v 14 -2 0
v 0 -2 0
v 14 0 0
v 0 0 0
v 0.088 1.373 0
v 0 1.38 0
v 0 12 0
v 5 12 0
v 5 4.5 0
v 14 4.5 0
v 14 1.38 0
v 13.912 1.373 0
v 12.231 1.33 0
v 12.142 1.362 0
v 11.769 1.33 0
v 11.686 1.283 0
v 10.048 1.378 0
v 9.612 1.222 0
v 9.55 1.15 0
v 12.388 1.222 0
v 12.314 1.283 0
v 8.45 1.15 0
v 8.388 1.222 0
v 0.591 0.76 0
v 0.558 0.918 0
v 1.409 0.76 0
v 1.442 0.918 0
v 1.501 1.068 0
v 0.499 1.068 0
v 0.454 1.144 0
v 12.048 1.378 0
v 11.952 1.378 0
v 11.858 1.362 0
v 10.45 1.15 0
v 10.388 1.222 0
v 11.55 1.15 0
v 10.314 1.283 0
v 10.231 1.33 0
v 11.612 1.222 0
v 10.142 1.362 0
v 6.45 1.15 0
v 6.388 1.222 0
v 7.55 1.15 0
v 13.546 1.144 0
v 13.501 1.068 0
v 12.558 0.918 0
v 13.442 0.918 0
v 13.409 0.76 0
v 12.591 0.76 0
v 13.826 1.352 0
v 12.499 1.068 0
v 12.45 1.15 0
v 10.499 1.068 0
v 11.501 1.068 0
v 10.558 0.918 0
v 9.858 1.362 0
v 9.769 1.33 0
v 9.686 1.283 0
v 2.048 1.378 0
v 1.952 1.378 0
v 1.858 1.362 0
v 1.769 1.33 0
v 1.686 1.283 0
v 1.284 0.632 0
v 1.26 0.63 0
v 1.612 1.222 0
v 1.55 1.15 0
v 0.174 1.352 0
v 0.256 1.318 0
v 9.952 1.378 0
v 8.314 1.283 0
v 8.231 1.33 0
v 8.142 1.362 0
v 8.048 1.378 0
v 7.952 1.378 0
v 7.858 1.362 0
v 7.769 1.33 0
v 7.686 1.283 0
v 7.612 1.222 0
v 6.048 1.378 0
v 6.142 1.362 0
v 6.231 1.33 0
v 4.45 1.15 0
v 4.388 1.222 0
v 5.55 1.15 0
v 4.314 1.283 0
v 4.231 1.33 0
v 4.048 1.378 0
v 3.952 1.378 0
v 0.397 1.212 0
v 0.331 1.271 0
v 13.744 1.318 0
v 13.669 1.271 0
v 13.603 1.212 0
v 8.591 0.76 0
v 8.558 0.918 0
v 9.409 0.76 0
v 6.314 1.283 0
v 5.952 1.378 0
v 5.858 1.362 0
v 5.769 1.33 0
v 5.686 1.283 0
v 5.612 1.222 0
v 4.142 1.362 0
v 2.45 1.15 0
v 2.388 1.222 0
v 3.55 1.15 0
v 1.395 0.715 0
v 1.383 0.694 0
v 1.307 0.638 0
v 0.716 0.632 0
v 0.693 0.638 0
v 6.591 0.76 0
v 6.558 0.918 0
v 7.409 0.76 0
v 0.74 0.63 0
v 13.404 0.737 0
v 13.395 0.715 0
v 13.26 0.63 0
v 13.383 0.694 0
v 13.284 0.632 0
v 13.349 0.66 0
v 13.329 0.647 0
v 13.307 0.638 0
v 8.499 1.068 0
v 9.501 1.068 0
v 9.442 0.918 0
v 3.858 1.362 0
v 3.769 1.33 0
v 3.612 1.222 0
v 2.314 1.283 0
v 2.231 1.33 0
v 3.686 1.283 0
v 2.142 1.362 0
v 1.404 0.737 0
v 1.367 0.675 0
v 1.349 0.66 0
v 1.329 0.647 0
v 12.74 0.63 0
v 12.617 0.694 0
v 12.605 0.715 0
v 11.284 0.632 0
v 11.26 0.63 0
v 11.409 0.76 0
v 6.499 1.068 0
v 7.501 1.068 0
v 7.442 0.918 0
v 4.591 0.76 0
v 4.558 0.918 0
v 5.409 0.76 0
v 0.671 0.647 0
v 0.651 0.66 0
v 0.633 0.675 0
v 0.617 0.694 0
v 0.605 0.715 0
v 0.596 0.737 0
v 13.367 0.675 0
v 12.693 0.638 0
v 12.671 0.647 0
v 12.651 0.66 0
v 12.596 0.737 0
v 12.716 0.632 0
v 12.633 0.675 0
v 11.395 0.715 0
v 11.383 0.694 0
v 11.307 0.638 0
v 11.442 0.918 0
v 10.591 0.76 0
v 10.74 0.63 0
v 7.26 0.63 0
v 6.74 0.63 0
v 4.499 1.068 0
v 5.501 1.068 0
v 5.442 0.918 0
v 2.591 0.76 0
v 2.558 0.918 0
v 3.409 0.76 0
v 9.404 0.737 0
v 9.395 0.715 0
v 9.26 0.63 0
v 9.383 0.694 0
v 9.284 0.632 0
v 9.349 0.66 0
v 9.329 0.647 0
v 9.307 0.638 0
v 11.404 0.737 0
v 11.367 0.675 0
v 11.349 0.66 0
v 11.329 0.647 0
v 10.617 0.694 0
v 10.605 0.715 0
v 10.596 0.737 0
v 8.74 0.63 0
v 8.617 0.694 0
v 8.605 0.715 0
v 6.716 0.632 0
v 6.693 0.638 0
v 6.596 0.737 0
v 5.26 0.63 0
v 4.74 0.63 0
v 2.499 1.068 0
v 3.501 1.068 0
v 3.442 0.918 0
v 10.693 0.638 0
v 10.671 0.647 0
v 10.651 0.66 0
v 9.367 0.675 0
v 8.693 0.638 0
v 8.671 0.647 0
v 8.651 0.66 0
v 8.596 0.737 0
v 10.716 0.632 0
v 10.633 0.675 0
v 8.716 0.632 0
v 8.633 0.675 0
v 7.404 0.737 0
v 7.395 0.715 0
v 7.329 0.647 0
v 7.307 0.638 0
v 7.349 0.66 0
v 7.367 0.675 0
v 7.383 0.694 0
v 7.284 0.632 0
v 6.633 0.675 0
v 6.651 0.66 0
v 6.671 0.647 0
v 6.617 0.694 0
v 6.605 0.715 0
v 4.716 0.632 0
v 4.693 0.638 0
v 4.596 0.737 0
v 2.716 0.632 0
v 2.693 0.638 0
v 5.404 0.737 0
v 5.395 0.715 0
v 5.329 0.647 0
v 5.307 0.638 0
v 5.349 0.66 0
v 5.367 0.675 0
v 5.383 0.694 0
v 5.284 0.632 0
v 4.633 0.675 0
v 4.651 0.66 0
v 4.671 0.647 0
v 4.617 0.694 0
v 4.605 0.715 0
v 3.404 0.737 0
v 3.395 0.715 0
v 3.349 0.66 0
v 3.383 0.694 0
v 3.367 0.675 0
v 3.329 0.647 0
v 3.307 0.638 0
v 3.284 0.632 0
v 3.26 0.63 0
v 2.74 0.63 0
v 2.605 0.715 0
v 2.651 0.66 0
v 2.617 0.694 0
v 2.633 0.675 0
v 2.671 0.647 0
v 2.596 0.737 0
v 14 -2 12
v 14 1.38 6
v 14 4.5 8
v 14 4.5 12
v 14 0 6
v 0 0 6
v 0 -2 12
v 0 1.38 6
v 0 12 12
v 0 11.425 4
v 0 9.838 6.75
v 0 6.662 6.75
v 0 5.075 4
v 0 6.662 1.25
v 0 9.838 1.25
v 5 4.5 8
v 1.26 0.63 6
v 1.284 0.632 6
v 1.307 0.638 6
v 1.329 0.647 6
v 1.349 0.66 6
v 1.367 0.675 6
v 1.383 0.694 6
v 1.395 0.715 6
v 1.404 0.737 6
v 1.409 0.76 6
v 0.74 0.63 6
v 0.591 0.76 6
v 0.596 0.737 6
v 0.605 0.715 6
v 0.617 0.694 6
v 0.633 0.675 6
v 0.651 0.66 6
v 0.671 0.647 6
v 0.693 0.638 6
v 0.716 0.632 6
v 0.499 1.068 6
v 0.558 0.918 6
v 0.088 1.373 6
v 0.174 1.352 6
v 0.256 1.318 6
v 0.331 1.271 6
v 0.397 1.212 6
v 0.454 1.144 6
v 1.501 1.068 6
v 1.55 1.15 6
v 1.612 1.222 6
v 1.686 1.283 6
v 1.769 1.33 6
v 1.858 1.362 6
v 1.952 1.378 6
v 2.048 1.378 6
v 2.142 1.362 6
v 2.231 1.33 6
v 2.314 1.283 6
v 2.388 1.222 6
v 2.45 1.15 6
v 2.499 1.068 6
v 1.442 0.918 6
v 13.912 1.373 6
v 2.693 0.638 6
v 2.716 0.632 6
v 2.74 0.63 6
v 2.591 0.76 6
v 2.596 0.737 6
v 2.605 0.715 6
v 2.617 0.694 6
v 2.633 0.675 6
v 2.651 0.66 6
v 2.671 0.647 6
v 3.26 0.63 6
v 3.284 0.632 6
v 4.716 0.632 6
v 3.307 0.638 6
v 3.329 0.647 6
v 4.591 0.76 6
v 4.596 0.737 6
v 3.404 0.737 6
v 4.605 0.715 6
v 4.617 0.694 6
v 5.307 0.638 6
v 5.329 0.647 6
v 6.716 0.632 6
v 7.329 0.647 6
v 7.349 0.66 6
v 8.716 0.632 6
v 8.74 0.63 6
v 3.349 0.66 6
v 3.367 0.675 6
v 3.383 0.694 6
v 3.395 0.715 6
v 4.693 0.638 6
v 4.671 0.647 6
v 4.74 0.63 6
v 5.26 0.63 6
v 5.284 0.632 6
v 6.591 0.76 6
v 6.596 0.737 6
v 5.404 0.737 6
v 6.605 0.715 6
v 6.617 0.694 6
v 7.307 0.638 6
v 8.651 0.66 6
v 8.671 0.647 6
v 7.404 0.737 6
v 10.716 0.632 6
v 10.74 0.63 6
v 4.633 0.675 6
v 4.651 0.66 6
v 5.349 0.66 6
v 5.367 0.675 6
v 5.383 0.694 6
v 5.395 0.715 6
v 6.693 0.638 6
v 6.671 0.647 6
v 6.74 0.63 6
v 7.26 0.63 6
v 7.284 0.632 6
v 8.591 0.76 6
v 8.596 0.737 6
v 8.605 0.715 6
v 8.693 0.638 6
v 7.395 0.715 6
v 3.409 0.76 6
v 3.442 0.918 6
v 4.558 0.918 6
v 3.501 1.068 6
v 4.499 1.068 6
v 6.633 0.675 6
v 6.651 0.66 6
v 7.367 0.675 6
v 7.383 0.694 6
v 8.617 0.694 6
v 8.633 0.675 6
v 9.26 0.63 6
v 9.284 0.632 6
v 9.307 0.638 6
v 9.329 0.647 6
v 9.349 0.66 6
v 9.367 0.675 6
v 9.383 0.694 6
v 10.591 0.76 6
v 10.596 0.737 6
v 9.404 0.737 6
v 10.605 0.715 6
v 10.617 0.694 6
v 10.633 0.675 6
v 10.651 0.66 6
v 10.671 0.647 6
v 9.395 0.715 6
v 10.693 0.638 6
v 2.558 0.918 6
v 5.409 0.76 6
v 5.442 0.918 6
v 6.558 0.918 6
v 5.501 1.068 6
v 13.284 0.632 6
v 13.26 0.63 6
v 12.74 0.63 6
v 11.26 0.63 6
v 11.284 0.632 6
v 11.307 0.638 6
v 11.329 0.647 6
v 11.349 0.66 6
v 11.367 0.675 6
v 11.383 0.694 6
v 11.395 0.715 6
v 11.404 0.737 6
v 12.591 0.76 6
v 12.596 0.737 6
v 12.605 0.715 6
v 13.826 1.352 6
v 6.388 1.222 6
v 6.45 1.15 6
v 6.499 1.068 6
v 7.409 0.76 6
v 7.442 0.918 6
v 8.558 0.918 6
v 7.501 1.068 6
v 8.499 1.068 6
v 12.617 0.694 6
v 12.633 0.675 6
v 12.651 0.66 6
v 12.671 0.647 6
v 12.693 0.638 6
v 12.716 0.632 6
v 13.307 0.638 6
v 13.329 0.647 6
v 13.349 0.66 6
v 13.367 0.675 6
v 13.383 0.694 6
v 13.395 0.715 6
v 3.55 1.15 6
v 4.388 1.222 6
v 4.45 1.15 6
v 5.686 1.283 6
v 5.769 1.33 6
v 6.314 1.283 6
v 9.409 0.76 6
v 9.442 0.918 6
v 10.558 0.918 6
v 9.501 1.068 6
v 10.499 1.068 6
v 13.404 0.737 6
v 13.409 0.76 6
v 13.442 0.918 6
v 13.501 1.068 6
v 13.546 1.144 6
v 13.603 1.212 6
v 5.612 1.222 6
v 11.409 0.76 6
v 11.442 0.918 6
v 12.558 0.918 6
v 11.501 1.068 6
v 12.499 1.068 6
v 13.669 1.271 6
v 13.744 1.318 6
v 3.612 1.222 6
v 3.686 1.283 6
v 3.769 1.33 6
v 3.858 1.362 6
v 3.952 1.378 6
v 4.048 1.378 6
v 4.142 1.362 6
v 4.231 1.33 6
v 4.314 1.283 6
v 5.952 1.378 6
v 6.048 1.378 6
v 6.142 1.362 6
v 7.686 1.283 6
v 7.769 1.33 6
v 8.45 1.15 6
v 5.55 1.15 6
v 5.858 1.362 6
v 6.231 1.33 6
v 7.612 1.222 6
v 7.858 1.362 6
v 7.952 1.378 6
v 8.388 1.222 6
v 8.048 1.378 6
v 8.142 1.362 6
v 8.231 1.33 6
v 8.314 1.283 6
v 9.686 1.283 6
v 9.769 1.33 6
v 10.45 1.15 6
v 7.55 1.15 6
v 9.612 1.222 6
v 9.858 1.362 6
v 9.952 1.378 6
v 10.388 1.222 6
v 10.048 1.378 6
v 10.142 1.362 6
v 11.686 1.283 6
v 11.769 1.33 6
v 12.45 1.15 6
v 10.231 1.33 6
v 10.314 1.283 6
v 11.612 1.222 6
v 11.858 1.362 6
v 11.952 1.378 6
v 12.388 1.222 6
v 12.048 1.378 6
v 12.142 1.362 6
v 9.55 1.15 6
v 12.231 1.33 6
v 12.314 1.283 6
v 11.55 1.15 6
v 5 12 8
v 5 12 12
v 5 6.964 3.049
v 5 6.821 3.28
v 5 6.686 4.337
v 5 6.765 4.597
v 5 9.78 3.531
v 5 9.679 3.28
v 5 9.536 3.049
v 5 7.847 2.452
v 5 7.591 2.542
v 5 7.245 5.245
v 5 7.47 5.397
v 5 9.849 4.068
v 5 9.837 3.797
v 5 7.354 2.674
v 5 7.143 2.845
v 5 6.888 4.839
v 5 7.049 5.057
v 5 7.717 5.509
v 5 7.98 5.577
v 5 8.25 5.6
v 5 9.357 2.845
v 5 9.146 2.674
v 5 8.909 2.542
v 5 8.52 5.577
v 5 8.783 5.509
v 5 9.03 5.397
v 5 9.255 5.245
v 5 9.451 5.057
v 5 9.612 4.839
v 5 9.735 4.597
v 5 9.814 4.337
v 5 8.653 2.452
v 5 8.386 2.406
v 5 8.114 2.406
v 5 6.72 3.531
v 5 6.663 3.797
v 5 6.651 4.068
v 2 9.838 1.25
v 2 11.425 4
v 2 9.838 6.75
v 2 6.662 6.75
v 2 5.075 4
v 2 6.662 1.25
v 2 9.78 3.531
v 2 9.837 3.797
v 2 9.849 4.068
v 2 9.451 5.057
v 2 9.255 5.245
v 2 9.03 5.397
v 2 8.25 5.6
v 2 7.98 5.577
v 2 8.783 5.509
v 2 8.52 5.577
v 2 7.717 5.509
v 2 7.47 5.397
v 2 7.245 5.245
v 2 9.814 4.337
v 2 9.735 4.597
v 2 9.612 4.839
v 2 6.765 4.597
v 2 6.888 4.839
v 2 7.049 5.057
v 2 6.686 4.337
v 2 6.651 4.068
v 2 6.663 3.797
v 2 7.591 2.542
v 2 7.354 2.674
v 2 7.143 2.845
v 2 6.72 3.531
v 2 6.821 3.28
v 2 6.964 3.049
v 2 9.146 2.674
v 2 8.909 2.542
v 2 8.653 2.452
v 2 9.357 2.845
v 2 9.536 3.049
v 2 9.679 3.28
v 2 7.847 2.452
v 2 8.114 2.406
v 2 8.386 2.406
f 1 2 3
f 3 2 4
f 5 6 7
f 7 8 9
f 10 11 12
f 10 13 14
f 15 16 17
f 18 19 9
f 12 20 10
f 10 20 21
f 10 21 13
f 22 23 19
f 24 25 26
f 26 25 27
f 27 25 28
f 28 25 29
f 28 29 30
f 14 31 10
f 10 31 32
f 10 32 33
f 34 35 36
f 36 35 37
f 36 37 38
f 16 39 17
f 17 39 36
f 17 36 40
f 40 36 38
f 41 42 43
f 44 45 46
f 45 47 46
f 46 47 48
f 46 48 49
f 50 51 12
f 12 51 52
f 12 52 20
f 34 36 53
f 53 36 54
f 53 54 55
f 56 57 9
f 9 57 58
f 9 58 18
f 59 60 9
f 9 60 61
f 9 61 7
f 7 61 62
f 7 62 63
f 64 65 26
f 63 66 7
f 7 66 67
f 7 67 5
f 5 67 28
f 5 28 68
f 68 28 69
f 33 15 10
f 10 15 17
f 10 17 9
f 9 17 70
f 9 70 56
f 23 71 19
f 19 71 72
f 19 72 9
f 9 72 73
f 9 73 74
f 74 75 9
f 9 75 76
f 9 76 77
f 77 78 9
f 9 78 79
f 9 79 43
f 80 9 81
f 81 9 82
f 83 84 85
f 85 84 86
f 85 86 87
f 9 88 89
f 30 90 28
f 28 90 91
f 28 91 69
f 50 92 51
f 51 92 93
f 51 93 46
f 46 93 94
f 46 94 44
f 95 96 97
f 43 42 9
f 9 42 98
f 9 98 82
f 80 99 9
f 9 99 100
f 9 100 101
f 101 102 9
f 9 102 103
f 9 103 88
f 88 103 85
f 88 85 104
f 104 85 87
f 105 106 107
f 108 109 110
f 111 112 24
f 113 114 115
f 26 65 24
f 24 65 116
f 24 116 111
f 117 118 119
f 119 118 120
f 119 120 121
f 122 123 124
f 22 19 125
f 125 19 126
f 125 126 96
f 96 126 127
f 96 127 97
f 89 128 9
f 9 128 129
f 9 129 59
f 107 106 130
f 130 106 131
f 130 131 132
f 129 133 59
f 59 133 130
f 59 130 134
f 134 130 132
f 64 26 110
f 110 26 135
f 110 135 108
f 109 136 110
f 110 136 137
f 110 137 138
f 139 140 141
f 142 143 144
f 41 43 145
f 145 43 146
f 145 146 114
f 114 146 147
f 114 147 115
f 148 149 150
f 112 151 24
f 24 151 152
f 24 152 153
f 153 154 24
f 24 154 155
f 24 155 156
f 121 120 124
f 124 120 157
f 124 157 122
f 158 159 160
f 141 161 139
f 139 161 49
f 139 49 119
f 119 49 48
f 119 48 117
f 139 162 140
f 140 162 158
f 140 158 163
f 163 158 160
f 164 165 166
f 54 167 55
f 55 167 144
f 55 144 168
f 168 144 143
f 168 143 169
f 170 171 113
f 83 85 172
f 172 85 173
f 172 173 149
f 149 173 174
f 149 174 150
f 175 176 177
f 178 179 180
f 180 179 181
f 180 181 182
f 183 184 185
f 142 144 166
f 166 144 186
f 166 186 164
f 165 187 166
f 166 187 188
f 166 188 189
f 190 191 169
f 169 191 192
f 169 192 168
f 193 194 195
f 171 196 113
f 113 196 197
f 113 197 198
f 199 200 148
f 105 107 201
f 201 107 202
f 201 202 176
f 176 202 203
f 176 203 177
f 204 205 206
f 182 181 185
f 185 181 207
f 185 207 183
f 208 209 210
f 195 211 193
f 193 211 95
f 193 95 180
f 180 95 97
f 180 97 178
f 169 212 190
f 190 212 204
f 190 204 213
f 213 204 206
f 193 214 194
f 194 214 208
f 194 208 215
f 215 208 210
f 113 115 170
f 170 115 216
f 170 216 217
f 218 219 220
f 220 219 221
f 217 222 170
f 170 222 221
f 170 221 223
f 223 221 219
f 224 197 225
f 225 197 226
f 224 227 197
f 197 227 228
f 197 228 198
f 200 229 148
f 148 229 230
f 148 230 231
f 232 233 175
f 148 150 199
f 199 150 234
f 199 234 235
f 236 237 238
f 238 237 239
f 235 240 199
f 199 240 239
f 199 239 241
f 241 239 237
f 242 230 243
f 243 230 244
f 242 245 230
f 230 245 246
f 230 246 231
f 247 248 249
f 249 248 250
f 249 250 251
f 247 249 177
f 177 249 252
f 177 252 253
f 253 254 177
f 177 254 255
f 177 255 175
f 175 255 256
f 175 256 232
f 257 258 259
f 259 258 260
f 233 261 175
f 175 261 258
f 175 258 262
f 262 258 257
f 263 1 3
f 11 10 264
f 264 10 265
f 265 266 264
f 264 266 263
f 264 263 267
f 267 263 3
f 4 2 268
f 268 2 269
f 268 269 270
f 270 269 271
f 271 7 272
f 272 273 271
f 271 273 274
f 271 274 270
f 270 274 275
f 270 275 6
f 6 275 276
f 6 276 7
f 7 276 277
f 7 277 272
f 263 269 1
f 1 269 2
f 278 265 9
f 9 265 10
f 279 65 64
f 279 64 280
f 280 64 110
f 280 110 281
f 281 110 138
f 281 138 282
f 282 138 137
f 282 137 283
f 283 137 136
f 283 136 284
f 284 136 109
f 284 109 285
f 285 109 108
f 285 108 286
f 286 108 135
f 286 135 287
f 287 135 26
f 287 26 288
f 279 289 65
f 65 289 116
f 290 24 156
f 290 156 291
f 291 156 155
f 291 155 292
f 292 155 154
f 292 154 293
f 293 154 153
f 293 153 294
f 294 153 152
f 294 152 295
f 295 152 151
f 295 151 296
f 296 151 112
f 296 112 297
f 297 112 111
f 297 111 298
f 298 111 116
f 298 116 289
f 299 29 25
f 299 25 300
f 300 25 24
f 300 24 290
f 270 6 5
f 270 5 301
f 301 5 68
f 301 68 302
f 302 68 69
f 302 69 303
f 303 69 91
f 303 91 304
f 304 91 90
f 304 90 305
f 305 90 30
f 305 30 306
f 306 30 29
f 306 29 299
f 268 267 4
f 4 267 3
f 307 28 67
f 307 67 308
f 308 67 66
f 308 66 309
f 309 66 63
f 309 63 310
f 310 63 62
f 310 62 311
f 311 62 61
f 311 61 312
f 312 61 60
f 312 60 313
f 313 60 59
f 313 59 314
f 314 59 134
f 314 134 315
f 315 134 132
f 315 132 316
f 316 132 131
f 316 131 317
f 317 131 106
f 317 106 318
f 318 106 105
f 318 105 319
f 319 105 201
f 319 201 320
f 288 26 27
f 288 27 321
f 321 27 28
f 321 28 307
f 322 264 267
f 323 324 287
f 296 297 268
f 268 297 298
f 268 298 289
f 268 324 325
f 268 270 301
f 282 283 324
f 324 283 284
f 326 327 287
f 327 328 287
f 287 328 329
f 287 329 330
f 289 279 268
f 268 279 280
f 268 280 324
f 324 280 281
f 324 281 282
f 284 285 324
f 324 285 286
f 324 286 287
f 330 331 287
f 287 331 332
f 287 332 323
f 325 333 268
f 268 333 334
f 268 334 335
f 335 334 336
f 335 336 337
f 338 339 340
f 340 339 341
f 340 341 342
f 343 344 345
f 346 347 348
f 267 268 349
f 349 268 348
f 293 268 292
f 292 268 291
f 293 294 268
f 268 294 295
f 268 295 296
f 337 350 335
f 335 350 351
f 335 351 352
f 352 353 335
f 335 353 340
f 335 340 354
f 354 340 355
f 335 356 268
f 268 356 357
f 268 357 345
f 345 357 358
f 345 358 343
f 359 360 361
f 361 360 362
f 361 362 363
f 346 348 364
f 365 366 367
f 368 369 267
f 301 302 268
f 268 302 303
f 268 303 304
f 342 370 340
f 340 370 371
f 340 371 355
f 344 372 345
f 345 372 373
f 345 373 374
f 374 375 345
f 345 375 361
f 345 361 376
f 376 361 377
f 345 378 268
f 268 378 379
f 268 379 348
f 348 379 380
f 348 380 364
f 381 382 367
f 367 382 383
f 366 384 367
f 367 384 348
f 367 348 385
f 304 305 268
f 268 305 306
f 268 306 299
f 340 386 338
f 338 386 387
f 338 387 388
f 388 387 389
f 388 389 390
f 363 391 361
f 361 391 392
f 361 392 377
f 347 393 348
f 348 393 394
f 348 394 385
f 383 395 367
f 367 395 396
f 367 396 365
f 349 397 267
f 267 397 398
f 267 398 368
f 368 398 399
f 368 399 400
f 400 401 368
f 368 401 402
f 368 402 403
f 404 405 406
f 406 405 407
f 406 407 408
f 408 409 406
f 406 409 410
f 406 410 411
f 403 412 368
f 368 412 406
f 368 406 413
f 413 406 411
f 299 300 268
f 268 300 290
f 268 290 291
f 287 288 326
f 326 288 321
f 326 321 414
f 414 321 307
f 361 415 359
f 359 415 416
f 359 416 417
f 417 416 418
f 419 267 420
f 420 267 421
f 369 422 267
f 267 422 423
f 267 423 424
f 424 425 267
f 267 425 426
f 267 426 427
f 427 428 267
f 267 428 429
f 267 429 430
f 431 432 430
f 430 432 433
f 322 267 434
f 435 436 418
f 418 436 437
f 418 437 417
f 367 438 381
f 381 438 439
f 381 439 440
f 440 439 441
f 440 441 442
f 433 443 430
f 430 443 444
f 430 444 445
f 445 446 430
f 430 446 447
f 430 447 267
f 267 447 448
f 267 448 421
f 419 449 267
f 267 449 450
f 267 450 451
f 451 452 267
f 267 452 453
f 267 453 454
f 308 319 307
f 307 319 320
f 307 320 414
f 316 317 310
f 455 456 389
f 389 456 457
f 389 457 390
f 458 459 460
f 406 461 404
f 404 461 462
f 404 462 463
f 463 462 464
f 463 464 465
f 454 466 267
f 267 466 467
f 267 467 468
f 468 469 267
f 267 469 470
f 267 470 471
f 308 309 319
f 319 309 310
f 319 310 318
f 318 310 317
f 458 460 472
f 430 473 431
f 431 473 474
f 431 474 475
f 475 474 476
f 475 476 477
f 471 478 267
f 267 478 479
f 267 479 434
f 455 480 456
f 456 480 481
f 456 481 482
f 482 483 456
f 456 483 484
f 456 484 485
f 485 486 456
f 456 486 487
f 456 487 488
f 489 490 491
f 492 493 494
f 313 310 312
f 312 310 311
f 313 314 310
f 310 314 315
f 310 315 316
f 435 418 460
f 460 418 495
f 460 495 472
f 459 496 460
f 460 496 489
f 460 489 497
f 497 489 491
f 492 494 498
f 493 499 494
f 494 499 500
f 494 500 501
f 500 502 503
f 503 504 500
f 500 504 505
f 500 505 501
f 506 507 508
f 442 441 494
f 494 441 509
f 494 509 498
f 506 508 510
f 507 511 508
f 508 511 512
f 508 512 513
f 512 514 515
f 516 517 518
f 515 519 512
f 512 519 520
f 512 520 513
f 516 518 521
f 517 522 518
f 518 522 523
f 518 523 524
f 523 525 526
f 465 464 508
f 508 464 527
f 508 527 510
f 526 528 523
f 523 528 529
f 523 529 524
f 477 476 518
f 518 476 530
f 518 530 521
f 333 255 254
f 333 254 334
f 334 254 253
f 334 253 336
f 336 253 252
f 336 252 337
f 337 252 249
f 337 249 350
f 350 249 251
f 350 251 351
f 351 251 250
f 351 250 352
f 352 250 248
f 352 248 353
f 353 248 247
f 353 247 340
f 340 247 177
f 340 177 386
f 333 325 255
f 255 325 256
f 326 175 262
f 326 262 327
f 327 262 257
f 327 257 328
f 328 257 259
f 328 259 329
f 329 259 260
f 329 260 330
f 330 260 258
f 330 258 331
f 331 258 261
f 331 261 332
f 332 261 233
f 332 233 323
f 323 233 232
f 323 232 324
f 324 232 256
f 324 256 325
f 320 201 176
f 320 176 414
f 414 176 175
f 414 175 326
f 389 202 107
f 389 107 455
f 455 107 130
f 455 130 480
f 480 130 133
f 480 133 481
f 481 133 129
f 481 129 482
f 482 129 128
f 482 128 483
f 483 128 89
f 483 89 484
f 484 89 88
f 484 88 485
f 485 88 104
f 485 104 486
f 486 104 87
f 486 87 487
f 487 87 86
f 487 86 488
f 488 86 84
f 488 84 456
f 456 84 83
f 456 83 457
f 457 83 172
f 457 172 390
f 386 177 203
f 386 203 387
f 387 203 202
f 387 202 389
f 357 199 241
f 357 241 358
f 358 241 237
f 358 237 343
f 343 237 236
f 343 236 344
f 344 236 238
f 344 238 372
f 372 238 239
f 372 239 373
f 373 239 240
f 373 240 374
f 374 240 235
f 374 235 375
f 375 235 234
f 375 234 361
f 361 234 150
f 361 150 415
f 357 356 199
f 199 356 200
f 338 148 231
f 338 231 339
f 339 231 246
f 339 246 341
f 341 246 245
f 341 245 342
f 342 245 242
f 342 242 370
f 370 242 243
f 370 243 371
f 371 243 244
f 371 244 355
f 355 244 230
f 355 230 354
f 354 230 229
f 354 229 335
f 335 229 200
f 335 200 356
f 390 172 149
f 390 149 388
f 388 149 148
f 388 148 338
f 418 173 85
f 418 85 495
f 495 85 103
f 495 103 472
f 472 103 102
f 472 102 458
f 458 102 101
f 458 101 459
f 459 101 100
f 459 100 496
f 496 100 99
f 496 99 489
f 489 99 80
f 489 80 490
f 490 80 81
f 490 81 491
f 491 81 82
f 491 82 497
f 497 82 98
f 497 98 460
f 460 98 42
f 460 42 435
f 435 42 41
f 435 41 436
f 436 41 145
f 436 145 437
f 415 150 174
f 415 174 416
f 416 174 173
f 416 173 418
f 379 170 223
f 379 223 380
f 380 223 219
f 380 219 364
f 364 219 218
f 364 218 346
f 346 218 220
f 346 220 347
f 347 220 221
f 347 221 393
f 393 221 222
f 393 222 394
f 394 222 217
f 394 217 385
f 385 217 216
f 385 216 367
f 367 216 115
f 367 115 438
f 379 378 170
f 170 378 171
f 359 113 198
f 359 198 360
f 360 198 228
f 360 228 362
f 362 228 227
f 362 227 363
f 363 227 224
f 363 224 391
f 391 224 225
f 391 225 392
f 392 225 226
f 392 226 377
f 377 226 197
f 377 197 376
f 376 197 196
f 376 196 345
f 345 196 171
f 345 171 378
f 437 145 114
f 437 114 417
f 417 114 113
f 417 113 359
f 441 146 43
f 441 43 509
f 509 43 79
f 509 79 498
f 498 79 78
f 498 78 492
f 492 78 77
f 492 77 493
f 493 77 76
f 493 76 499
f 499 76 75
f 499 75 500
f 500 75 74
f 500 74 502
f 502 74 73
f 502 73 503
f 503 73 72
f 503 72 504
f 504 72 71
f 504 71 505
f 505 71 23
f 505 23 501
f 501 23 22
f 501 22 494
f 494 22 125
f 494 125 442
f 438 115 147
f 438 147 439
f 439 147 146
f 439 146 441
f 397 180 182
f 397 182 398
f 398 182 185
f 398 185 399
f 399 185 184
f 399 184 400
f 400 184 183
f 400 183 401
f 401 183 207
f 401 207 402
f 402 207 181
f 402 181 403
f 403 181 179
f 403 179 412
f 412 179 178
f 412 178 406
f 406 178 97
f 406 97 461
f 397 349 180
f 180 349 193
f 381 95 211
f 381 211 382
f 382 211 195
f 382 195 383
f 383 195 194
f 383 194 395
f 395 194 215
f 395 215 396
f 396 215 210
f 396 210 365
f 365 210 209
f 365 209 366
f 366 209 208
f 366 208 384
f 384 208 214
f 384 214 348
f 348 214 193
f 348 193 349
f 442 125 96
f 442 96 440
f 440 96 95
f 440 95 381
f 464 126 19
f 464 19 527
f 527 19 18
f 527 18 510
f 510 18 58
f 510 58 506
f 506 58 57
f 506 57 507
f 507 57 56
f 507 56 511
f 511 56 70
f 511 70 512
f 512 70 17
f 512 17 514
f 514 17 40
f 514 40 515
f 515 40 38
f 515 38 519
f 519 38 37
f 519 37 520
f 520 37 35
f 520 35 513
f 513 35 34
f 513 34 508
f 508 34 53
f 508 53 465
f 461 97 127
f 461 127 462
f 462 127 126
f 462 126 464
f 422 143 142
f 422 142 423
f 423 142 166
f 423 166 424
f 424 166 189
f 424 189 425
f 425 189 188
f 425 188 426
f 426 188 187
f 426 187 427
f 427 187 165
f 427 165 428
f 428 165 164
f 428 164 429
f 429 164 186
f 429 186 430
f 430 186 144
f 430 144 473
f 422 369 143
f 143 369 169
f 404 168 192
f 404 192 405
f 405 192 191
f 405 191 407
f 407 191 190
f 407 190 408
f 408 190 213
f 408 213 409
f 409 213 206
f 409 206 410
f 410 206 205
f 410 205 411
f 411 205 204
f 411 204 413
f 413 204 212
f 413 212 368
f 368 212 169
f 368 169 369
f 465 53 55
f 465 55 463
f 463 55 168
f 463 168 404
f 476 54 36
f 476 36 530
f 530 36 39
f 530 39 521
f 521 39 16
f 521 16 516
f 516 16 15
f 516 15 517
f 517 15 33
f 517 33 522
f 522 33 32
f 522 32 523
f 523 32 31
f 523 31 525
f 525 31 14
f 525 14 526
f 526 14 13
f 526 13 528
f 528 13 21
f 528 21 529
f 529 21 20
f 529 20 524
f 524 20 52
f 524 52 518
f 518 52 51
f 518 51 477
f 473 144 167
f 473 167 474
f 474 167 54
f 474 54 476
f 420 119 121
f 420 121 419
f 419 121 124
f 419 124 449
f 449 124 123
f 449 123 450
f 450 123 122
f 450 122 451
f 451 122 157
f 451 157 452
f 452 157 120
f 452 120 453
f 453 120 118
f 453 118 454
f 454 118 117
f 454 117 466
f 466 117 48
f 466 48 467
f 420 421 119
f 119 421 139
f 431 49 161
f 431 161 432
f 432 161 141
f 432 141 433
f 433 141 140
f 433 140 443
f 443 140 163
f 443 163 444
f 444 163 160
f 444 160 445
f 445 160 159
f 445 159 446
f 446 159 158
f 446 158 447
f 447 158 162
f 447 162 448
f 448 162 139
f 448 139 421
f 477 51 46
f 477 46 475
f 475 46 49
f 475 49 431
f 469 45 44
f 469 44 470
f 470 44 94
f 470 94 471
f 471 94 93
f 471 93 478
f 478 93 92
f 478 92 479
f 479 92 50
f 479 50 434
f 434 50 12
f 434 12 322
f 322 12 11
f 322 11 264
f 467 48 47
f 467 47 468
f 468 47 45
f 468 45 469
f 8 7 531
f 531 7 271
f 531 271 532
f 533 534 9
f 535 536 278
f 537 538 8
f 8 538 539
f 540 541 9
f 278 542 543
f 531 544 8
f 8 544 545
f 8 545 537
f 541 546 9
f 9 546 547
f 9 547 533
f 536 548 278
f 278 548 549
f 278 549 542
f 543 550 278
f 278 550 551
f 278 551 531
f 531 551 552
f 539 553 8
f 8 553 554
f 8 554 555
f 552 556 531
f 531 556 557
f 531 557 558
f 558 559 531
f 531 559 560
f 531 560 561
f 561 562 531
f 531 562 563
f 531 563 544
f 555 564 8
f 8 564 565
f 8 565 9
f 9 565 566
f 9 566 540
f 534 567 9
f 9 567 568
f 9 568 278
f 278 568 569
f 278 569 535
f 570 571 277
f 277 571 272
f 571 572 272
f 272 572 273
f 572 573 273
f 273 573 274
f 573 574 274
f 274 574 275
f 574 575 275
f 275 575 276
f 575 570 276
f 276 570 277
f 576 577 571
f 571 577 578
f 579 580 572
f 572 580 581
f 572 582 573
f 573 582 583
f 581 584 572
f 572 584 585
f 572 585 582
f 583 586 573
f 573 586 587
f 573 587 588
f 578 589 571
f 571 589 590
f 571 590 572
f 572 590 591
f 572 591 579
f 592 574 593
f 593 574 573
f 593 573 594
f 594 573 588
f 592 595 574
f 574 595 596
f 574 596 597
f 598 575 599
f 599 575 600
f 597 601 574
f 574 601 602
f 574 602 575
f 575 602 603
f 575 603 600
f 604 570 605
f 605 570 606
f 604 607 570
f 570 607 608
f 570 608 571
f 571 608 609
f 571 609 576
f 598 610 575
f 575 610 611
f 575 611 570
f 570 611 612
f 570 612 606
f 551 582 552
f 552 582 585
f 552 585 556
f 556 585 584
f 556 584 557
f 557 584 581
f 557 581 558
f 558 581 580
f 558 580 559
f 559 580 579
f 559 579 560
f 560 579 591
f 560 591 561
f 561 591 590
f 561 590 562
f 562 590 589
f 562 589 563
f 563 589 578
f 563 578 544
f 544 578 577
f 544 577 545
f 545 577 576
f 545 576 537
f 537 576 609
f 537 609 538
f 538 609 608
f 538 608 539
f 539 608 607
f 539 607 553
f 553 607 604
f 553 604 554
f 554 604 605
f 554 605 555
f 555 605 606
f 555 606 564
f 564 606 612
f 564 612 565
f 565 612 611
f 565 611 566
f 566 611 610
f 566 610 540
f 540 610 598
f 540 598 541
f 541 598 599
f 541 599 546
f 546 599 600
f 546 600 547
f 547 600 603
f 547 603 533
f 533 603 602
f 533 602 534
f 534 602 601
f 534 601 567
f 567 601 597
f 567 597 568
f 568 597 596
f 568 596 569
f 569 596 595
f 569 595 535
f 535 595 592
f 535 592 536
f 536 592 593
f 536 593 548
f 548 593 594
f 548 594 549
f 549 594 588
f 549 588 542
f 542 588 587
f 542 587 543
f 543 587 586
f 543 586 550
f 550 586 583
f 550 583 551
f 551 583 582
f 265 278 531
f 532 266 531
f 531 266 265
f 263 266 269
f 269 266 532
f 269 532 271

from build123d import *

# Parameters (mm, degrees)
SKETCH3_W           = 14
SKETCH3_H           = 6.5
BOSS_EXTRUDE2_DEPTH = 8
CUT_EXTRUDE1_DEPTH  = 6
LPATTERN2_COUNT     = 7
LPATTERN2_PITCH     = 2
SKETCH4_W           = 8
SKETCH4_H           = 7.5
BOSS_EXTRUDE3_DEPTH = 5
CUT_EXTRUDE2_DEPTH  = 2
SKETCH6_R           = 1.6
CUT_EXTRUDE3_DEPTH  = 10
BOSS_EXTRUDE4_DEPTH = 4


with BuildPart() as part:
    # Sketch3 → Boss-Extrude2 (new body)
    with BuildSketch(Plane.XY):
        with Locations((7, 1.25)):
            Rectangle(SKETCH3_W, SKETCH3_H)
    extrude(amount=BOSS_EXTRUDE2_DEPTH)

    # Sketch1 → Cut-Extrude1 (cut)
    with BuildSketch(Plane.XY):
        with BuildLine():
            Line((0.740175425, 0.63), (1.259824575, 0.63))
            ThreePointArc((1.259824575, 0.63), (1.358731646, 0.667228588), (1.408543109, 0.760434783))
            ThreePointArc((1.408543109, 0.760434783), (1.442388286, 0.918062154), (1.501123596, 1.068202247))
            ThreePointArc((1.501123596, 1.068202247), (1.705850588, 1.295639059), (2, 1.38))
            Line((2, 1.38), (2, 0))
            Line((2, 0), (0, 0))
            Line((0, 0), (0, 1.38))
            ThreePointArc((0, 1.38), (0.294149412, 1.295639059), (0.498876404, 1.068202247))
            ThreePointArc((0.498876404, 1.068202247), (0.557611714, 0.918062154), (0.591456891, 0.760434783))
            ThreePointArc((0.591456891, 0.760434783), (0.641268354, 0.667228588), (0.740175425, 0.63))
        make_face()
    cut_extrude1 = extrude(amount=CUT_EXTRUDE1_DEPTH, mode=Mode.SUBTRACT)

    # LPattern2: Cut-Extrude1 ×7
    with Locations(*[(i * LPATTERN2_PITCH, 0, 0) for i in range(1, LPATTERN2_COUNT)]):
        add(cut_extrude1, mode=Mode.SUBTRACT)

    # Sketch4 → Boss-Extrude3 (add)
    with BuildSketch(Plane.ZY):
        with Locations((4, 8.25)):
            Rectangle(SKETCH4_W, SKETCH4_H)
    extrude(amount=-BOSS_EXTRUDE3_DEPTH)

    # Sketch5 → Cut-Extrude2 (cut)
    with BuildSketch(Plane.ZY):
        Polygon((1.25, 9.83771324), (1.25, 6.66228676), (4, 5.074573519), (6.75, 6.66228676), (6.75, 9.83771324), (4, 11.425426481), align=None)
    extrude(amount=-CUT_EXTRUDE2_DEPTH, mode=Mode.SUBTRACT)

    # Sketch6 → Cut-Extrude3 (cut)
    with BuildSketch(Plane.ZY.offset(-2)):
        with Locations((4, 8.25)):
            Circle(SKETCH6_R)
    extrude(amount=-CUT_EXTRUDE3_DEPTH, mode=Mode.SUBTRACT)

    # Sketch7 → Boss-Extrude4 (add)
    with BuildSketch(Plane.XY.offset(8)):
        Polygon((14, -2), (14, 4.5), (5, 12), (0, 12), (0, -2), align=None)
    extrude(amount=BOSS_EXTRUDE4_DEPTH)


solid = part.part
